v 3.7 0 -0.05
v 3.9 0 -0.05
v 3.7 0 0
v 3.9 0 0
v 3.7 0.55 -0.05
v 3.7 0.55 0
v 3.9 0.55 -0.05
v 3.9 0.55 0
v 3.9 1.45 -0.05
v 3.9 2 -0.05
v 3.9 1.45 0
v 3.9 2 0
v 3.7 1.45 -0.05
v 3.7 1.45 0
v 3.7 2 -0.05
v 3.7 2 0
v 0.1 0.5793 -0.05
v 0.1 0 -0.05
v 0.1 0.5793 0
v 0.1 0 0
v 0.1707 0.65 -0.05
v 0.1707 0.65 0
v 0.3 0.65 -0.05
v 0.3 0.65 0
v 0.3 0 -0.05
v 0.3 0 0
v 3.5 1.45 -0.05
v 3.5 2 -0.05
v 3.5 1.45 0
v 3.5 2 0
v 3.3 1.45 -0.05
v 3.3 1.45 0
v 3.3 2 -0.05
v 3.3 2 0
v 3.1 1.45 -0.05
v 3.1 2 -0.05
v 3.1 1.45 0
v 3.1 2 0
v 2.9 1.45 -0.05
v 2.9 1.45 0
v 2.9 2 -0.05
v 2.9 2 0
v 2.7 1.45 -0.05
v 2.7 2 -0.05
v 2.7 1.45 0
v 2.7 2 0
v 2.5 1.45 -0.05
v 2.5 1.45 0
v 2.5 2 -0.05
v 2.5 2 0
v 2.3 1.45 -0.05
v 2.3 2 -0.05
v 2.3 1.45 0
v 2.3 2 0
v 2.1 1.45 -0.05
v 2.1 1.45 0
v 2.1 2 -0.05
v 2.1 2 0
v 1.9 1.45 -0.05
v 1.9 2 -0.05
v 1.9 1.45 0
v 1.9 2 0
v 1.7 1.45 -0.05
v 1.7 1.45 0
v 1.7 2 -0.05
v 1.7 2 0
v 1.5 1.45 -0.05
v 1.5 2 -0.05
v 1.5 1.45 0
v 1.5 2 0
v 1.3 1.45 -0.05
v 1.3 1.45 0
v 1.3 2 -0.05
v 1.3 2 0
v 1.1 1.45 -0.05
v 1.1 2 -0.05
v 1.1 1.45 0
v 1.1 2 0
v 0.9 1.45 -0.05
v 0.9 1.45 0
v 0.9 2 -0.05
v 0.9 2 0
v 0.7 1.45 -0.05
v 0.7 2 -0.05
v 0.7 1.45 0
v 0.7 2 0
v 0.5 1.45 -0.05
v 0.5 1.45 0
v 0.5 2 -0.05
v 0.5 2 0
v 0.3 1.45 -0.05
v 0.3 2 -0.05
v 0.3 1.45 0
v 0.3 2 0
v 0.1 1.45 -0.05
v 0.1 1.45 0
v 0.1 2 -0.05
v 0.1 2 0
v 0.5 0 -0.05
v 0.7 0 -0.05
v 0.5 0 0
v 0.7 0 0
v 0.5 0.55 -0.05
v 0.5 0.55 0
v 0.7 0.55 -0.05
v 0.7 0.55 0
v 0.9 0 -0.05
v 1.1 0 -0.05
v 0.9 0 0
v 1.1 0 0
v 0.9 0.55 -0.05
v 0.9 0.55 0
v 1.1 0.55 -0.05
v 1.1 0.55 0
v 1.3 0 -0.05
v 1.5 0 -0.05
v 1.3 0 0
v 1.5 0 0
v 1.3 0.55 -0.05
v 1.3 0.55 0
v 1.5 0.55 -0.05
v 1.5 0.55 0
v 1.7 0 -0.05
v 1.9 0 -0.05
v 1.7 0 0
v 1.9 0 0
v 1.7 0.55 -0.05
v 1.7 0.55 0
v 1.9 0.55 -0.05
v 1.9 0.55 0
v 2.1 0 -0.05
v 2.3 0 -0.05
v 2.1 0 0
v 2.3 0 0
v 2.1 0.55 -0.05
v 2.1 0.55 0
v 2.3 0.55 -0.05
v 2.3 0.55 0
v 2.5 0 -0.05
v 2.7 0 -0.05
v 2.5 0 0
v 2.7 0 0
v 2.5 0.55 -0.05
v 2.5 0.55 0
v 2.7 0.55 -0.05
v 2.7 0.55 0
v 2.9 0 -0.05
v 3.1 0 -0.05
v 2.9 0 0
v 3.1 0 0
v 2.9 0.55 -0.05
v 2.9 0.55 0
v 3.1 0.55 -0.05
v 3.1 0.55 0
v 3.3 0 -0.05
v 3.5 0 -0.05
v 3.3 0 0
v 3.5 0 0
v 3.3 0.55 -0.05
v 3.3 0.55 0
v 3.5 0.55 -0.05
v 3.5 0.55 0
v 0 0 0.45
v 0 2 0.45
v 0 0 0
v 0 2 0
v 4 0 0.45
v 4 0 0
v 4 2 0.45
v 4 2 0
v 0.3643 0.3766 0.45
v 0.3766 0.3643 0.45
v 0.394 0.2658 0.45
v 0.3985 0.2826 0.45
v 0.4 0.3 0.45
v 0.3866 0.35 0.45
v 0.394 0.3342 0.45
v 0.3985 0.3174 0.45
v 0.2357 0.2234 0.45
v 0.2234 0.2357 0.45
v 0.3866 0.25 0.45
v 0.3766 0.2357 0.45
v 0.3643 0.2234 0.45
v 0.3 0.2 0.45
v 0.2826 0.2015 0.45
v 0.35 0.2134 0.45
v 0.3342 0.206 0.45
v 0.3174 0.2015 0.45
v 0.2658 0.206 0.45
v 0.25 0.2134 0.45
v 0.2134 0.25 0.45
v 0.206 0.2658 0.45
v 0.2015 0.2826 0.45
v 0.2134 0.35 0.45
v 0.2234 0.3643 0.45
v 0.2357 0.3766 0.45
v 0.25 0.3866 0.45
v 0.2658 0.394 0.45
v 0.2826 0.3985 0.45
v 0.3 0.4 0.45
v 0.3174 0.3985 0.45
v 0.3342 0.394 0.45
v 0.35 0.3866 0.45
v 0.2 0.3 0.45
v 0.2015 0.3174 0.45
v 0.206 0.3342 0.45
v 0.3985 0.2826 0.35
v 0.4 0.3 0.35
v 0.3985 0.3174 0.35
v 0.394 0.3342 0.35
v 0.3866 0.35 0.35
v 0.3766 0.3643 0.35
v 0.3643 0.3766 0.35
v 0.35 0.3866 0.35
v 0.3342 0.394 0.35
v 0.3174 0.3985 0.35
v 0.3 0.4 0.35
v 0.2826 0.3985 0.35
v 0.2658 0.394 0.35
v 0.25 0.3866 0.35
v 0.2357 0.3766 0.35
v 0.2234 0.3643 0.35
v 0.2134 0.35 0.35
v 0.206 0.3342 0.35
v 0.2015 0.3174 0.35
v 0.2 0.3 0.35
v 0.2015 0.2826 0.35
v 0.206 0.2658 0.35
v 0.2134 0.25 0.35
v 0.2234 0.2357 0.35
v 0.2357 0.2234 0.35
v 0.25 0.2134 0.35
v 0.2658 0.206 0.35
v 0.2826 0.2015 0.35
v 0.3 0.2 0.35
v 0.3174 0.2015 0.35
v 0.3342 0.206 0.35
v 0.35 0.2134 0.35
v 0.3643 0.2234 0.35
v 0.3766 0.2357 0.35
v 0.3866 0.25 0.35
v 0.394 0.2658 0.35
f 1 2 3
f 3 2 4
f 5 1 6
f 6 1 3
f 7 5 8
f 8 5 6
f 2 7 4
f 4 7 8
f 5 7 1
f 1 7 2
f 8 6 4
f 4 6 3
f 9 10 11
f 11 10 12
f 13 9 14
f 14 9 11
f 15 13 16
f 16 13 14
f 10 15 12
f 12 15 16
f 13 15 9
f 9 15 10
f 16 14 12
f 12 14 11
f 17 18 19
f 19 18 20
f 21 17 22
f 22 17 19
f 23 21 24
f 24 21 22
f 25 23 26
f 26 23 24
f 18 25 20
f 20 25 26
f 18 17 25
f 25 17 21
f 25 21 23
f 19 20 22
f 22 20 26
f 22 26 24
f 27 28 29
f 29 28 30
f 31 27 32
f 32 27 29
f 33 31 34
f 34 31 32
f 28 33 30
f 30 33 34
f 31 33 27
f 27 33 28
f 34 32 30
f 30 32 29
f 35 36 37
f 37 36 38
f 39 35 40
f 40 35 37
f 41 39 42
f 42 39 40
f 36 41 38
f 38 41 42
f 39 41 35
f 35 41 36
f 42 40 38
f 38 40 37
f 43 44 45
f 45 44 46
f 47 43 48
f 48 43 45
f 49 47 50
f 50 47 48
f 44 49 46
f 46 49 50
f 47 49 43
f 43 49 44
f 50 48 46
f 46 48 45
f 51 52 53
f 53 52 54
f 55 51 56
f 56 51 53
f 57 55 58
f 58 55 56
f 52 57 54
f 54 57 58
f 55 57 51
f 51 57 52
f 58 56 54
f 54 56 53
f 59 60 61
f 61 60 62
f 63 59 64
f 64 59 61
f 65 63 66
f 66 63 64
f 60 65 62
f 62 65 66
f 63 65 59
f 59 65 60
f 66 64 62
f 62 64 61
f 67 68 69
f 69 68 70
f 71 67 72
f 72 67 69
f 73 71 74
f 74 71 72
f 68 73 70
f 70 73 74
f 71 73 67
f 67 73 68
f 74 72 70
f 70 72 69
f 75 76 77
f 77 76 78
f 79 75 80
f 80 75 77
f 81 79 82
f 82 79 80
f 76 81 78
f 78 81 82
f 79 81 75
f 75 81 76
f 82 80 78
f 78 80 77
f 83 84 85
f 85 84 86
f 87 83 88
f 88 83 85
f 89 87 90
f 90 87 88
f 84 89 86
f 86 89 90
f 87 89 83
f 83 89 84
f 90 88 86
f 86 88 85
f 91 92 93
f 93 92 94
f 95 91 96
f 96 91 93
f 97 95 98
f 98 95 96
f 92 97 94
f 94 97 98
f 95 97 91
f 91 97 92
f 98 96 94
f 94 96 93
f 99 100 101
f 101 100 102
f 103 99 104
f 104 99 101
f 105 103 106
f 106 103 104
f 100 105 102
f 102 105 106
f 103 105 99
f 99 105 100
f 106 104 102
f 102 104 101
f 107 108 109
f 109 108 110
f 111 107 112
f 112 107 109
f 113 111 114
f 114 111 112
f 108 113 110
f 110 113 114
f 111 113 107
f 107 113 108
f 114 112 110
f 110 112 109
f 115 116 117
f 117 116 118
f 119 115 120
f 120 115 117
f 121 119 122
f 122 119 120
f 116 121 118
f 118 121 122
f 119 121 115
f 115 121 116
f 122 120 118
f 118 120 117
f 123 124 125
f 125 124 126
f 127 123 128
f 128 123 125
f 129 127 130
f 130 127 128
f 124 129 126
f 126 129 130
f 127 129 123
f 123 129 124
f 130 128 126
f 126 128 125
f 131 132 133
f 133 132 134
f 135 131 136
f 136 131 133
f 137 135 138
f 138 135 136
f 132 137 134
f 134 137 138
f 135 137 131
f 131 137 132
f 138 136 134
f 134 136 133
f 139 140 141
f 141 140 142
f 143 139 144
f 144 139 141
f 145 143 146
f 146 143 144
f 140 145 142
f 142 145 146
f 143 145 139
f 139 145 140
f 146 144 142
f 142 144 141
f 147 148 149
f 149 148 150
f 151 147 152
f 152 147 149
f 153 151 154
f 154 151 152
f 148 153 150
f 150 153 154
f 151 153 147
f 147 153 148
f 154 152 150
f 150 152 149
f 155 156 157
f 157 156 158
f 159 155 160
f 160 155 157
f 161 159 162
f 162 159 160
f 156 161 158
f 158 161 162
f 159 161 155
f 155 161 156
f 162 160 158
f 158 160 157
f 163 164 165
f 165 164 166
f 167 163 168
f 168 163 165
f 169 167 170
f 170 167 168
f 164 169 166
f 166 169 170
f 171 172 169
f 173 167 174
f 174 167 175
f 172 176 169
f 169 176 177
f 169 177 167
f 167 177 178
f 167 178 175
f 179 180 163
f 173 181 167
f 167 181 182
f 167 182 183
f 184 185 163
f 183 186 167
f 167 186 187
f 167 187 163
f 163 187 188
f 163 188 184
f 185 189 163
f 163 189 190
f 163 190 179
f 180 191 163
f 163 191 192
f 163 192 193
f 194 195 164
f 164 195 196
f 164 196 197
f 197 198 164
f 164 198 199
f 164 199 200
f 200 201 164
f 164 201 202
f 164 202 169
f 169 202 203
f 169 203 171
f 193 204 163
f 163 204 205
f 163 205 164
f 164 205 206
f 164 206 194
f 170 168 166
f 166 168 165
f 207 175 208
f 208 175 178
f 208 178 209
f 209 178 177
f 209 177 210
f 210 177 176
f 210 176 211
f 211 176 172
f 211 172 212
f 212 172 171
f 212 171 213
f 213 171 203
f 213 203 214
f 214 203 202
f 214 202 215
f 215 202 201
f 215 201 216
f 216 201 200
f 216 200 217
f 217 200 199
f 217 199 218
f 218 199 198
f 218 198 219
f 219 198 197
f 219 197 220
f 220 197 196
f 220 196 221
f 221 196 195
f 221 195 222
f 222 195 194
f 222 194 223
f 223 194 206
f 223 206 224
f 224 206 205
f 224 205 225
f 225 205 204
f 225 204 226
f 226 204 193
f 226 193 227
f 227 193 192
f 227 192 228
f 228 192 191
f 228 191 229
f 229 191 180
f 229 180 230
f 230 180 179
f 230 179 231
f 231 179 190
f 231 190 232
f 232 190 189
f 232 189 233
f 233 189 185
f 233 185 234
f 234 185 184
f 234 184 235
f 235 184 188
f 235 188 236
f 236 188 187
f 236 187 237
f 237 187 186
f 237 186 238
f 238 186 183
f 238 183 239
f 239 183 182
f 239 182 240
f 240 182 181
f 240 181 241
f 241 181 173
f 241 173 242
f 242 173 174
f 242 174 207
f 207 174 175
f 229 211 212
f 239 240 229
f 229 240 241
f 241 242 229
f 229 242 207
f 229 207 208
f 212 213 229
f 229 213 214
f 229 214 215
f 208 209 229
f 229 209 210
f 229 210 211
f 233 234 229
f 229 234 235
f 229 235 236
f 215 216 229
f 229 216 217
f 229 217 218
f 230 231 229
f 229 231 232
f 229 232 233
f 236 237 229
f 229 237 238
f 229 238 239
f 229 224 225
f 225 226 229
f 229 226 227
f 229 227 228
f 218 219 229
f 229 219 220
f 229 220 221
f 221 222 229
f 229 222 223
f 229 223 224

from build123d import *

# Parameters (mm, degrees)
SKETCH1_W              = 4
SKETCH1_H              = 2
BOSS_EXTRUDE1_DEPTH    = 0.45
SKETCH2_W              = 0.2
SKETCH2_H              = 0.55
BOSS_EXTRUDE2_DEPTH    = 0.05
BOSS_EXTRUDE2_2_DEPTH  = 0.05
BOSS_EXTRUDE2_3_DEPTH  = 0.05
BOSS_EXTRUDE2_4_DEPTH  = 0.05
BOSS_EXTRUDE2_5_DEPTH  = 0.05
BOSS_EXTRUDE2_6_DEPTH  = 0.05
BOSS_EXTRUDE2_7_DEPTH  = 0.05
BOSS_EXTRUDE2_8_DEPTH  = 0.05
BOSS_EXTRUDE2_9_DEPTH  = 0.05
BOSS_EXTRUDE2_10_DEPTH = 0.05
BOSS_EXTRUDE2_11_DEPTH = 0.05
BOSS_EXTRUDE2_12_DEPTH = 0.05
BOSS_EXTRUDE2_13_DEPTH = 0.05
BOSS_EXTRUDE2_14_DEPTH = 0.05
BOSS_EXTRUDE2_15_DEPTH = 0.05
BOSS_EXTRUDE2_16_DEPTH = 0.05
BOSS_EXTRUDE2_17_DEPTH = 0.05
BOSS_EXTRUDE2_18_DEPTH = 0.05
BOSS_EXTRUDE2_19_DEPTH = 0.05
BOSS_EXTRUDE2_20_DEPTH = 0.05
SKETCH3_R              = 0.1
CUT_EXTRUDE1_DEPTH     = 0.1


with BuildPart() as part:
    # Sketch1 → Boss-Extrude1 (new body)
    with BuildSketch(Plane.XY):
        with Locations((2, 1)):
            Rectangle(SKETCH1_W, SKETCH1_H)
    extrude(amount=BOSS_EXTRUDE1_DEPTH)

    # Sketch3 → Cut-Extrude1 (cut)
    with BuildSketch(Plane.XY.offset(0.45)):
        with Locations((0.3, 0.3)):
            Circle(SKETCH3_R)
    extrude(amount=-CUT_EXTRUDE1_DEPTH, mode=Mode.SUBTRACT)


with BuildPart() as body_2:
    # Sketch2 → Boss-Extrude2 (new body)
    with BuildSketch(Plane(origin=(0, 0, 0), x_dir=(-1, 0, 0), z_dir=(0, 0, -1))):
        with Locations((-3.8, 1.725)):
            Rectangle(SKETCH2_W, SKETCH2_H)
    extrude(amount=BOSS_EXTRUDE2_DEPTH)


with BuildPart() as body_3:
    # Sketch2 → Boss-Extrude2 2 (new body)
    with BuildSketch(Plane(origin=(0, 0, 0), x_dir=(-1, 0, 0), z_dir=(0, 0, -1))):
        with Locations((-3.4, 1.725)):
            Rectangle(SKETCH2_W, SKETCH2_H)
    extrude(amount=BOSS_EXTRUDE2_2_DEPTH)


with BuildPart() as body_4:
    # Sketch2 → Boss-Extrude2 3 (new body)
    with BuildSketch(Plane(origin=(0, 0, 0), x_dir=(-1, 0, 0), z_dir=(0, 0, -1))):
        with Locations((-3, 1.725)):
            Rectangle(SKETCH2_W, SKETCH2_H)
    extrude(amount=BOSS_EXTRUDE2_3_DEPTH)


with BuildPart() as body_5:
    # Sketch2 → Boss-Extrude2 4 (new body)
    with BuildSketch(Plane(origin=(0, 0, 0), x_dir=(-1, 0, 0), z_dir=(0, 0, -1))):
        with Locations((-2.6, 1.725)):
            Rectangle(SKETCH2_W, SKETCH2_H)
    extrude(amount=BOSS_EXTRUDE2_4_DEPTH)


with BuildPart() as body_6:
    # Sketch2 → Boss-Extrude2 5 (new body)
    with BuildSketch(Plane(origin=(0, 0, 0), x_dir=(-1, 0, 0), z_dir=(0, 0, -1))):
        with Locations((-2.2, 1.725)):
            Rectangle(SKETCH2_W, SKETCH2_H)
    extrude(amount=BOSS_EXTRUDE2_5_DEPTH)


with BuildPart() as body_7:
    # Sketch2 → Boss-Extrude2 6 (new body)
    with BuildSketch(Plane(origin=(0, 0, 0), x_dir=(-1, 0, 0), z_dir=(0, 0, -1))):
        with Locations((-1.8, 1.725)):
            Rectangle(SKETCH2_W, SKETCH2_H)
    extrude(amount=BOSS_EXTRUDE2_6_DEPTH)


with BuildPart() as body_8:
    # Sketch2 → Boss-Extrude2 7 (new body)
    with BuildSketch(Plane(origin=(0, 0, 0), x_dir=(-1, 0, 0), z_dir=(0, 0, -1))):
        with Locations((-1.4, 1.725)):
            Rectangle(SKETCH2_W, SKETCH2_H)
    extrude(amount=BOSS_EXTRUDE2_7_DEPTH)


with BuildPart() as body_9:
    # Sketch2 → Boss-Extrude2 8 (new body)
    with BuildSketch(Plane(origin=(0, 0, 0), x_dir=(-1, 0, 0), z_dir=(0, 0, -1))):
        with Locations((-1, 1.725)):
            Rectangle(SKETCH2_W, SKETCH2_H)
    extrude(amount=BOSS_EXTRUDE2_8_DEPTH)


with BuildPart() as body_10:
    # Sketch2 → Boss-Extrude2 9 (new body)
    with BuildSketch(Plane(origin=(0, 0, 0), x_dir=(-1, 0, 0), z_dir=(0, 0, -1))):
        with Locations((-0.6, 1.725)):
            Rectangle(SKETCH2_W, SKETCH2_H)
    extrude(amount=BOSS_EXTRUDE2_9_DEPTH)


with BuildPart() as body_11:
    # Sketch2 → Boss-Extrude2 10 (new body)
    with BuildSketch(Plane(origin=(0, 0, 0), x_dir=(-1, 0, 0), z_dir=(0, 0, -1))):
        with Locations((-0.2, 1.725)):
            Rectangle(SKETCH2_W, SKETCH2_H)
    extrude(amount=BOSS_EXTRUDE2_10_DEPTH)


with BuildPart() as body_12:
    # Sketch2 → Boss-Extrude2 11 (new body)
    with BuildSketch(Plane(origin=(0, 0, 0), x_dir=(-1, 0, 0), z_dir=(0, 0, -1))):
        Polygon((-0.3, 0), (-0.3, 0.65), (-0.170710678, 0.65), (-0.1, 0.579289322), (-0.1, 0), align=None)
    extrude(amount=BOSS_EXTRUDE2_11_DEPTH)


with BuildPart() as body_13:
    # Sketch2 → Boss-Extrude2 12 (new body)
    with BuildSketch(Plane(origin=(0, 0, 0), x_dir=(-1, 0, 0), z_dir=(0, 0, -1))):
        with Locations((-0.6, 0.275)):
            Rectangle(SKETCH2_W, SKETCH2_H)
    extrude(amount=BOSS_EXTRUDE2_12_DEPTH)


with BuildPart() as body_14:
    # Sketch2 → Boss-Extrude2 13 (new body)
    with BuildSketch(Plane(origin=(0, 0, 0), x_dir=(-1, 0, 0), z_dir=(0, 0, -1))):
        with Locations((-1, 0.275)):
            Rectangle(SKETCH2_W, SKETCH2_H)
    extrude(amount=BOSS_EXTRUDE2_13_DEPTH)


with BuildPart() as body_15:
    # Sketch2 → Boss-Extrude2 14 (new body)
    with BuildSketch(Plane(origin=(0, 0, 0), x_dir=(-1, 0, 0), z_dir=(0, 0, -1))):
        with Locations((-1.4, 0.275)):
            Rectangle(SKETCH2_W, SKETCH2_H)
    extrude(amount=BOSS_EXTRUDE2_14_DEPTH)


with BuildPart() as body_16:
    # Sketch2 → Boss-Extrude2 15 (new body)
    with BuildSketch(Plane(origin=(0, 0, 0), x_dir=(-1, 0, 0), z_dir=(0, 0, -1))):
        with Locations((-1.8, 0.275)):
            Rectangle(SKETCH2_W, SKETCH2_H)
    extrude(amount=BOSS_EXTRUDE2_15_DEPTH)


with BuildPart() as body_17:
    # Sketch2 → Boss-Extrude2 16 (new body)
    with BuildSketch(Plane(origin=(0, 0, 0), x_dir=(-1, 0, 0), z_dir=(0, 0, -1))):
        with Locations((-2.2, 0.275)):
            Rectangle(SKETCH2_W, SKETCH2_H)
    extrude(amount=BOSS_EXTRUDE2_16_DEPTH)


with BuildPart() as body_18:
    # Sketch2 → Boss-Extrude2 17 (new body)
    with BuildSketch(Plane(origin=(0, 0, 0), x_dir=(-1, 0, 0), z_dir=(0, 0, -1))):
        with Locations((-2.6, 0.275)):
            Rectangle(SKETCH2_W, SKETCH2_H)
    extrude(amount=BOSS_EXTRUDE2_17_DEPTH)


with BuildPart() as body_19:
    # Sketch2 → Boss-Extrude2 18 (new body)
    with BuildSketch(Plane(origin=(0, 0, 0), x_dir=(-1, 0, 0), z_dir=(0, 0, -1))):
        with Locations((-3, 0.275)):
            Rectangle(SKETCH2_W, SKETCH2_H)
    extrude(amount=BOSS_EXTRUDE2_18_DEPTH)


with BuildPart() as body_20:
    # Sketch2 → Boss-Extrude2 19 (new body)
    with BuildSketch(Plane(origin=(0, 0, 0), x_dir=(-1, 0, 0), z_dir=(0, 0, -1))):
        with Locations((-3.4, 0.275)):
            Rectangle(SKETCH2_W, SKETCH2_H)
    extrude(amount=BOSS_EXTRUDE2_19_DEPTH)


with BuildPart() as body_21:
    # Sketch2 → Boss-Extrude2 20 (new body)
    with BuildSketch(Plane(origin=(0, 0, 0), x_dir=(-1, 0, 0), z_dir=(0, 0, -1))):
        with Locations((-3.8, 0.275)):
            Rectangle(SKETCH2_W, SKETCH2_H)
    extrude(amount=BOSS_EXTRUDE2_20_DEPTH)


solid = Compound([part.part, body_2.part, body_3.part, body_4.part, body_5.part, body_6.part, body_7.part, body_8.part, body_9.part, body_10.part, body_11.part, body_12.part, body_13.part, body_14.part, body_15.part, body_16.part, body_17.part, body_18.part, body_19.part, body_20.part, body_21.part])
